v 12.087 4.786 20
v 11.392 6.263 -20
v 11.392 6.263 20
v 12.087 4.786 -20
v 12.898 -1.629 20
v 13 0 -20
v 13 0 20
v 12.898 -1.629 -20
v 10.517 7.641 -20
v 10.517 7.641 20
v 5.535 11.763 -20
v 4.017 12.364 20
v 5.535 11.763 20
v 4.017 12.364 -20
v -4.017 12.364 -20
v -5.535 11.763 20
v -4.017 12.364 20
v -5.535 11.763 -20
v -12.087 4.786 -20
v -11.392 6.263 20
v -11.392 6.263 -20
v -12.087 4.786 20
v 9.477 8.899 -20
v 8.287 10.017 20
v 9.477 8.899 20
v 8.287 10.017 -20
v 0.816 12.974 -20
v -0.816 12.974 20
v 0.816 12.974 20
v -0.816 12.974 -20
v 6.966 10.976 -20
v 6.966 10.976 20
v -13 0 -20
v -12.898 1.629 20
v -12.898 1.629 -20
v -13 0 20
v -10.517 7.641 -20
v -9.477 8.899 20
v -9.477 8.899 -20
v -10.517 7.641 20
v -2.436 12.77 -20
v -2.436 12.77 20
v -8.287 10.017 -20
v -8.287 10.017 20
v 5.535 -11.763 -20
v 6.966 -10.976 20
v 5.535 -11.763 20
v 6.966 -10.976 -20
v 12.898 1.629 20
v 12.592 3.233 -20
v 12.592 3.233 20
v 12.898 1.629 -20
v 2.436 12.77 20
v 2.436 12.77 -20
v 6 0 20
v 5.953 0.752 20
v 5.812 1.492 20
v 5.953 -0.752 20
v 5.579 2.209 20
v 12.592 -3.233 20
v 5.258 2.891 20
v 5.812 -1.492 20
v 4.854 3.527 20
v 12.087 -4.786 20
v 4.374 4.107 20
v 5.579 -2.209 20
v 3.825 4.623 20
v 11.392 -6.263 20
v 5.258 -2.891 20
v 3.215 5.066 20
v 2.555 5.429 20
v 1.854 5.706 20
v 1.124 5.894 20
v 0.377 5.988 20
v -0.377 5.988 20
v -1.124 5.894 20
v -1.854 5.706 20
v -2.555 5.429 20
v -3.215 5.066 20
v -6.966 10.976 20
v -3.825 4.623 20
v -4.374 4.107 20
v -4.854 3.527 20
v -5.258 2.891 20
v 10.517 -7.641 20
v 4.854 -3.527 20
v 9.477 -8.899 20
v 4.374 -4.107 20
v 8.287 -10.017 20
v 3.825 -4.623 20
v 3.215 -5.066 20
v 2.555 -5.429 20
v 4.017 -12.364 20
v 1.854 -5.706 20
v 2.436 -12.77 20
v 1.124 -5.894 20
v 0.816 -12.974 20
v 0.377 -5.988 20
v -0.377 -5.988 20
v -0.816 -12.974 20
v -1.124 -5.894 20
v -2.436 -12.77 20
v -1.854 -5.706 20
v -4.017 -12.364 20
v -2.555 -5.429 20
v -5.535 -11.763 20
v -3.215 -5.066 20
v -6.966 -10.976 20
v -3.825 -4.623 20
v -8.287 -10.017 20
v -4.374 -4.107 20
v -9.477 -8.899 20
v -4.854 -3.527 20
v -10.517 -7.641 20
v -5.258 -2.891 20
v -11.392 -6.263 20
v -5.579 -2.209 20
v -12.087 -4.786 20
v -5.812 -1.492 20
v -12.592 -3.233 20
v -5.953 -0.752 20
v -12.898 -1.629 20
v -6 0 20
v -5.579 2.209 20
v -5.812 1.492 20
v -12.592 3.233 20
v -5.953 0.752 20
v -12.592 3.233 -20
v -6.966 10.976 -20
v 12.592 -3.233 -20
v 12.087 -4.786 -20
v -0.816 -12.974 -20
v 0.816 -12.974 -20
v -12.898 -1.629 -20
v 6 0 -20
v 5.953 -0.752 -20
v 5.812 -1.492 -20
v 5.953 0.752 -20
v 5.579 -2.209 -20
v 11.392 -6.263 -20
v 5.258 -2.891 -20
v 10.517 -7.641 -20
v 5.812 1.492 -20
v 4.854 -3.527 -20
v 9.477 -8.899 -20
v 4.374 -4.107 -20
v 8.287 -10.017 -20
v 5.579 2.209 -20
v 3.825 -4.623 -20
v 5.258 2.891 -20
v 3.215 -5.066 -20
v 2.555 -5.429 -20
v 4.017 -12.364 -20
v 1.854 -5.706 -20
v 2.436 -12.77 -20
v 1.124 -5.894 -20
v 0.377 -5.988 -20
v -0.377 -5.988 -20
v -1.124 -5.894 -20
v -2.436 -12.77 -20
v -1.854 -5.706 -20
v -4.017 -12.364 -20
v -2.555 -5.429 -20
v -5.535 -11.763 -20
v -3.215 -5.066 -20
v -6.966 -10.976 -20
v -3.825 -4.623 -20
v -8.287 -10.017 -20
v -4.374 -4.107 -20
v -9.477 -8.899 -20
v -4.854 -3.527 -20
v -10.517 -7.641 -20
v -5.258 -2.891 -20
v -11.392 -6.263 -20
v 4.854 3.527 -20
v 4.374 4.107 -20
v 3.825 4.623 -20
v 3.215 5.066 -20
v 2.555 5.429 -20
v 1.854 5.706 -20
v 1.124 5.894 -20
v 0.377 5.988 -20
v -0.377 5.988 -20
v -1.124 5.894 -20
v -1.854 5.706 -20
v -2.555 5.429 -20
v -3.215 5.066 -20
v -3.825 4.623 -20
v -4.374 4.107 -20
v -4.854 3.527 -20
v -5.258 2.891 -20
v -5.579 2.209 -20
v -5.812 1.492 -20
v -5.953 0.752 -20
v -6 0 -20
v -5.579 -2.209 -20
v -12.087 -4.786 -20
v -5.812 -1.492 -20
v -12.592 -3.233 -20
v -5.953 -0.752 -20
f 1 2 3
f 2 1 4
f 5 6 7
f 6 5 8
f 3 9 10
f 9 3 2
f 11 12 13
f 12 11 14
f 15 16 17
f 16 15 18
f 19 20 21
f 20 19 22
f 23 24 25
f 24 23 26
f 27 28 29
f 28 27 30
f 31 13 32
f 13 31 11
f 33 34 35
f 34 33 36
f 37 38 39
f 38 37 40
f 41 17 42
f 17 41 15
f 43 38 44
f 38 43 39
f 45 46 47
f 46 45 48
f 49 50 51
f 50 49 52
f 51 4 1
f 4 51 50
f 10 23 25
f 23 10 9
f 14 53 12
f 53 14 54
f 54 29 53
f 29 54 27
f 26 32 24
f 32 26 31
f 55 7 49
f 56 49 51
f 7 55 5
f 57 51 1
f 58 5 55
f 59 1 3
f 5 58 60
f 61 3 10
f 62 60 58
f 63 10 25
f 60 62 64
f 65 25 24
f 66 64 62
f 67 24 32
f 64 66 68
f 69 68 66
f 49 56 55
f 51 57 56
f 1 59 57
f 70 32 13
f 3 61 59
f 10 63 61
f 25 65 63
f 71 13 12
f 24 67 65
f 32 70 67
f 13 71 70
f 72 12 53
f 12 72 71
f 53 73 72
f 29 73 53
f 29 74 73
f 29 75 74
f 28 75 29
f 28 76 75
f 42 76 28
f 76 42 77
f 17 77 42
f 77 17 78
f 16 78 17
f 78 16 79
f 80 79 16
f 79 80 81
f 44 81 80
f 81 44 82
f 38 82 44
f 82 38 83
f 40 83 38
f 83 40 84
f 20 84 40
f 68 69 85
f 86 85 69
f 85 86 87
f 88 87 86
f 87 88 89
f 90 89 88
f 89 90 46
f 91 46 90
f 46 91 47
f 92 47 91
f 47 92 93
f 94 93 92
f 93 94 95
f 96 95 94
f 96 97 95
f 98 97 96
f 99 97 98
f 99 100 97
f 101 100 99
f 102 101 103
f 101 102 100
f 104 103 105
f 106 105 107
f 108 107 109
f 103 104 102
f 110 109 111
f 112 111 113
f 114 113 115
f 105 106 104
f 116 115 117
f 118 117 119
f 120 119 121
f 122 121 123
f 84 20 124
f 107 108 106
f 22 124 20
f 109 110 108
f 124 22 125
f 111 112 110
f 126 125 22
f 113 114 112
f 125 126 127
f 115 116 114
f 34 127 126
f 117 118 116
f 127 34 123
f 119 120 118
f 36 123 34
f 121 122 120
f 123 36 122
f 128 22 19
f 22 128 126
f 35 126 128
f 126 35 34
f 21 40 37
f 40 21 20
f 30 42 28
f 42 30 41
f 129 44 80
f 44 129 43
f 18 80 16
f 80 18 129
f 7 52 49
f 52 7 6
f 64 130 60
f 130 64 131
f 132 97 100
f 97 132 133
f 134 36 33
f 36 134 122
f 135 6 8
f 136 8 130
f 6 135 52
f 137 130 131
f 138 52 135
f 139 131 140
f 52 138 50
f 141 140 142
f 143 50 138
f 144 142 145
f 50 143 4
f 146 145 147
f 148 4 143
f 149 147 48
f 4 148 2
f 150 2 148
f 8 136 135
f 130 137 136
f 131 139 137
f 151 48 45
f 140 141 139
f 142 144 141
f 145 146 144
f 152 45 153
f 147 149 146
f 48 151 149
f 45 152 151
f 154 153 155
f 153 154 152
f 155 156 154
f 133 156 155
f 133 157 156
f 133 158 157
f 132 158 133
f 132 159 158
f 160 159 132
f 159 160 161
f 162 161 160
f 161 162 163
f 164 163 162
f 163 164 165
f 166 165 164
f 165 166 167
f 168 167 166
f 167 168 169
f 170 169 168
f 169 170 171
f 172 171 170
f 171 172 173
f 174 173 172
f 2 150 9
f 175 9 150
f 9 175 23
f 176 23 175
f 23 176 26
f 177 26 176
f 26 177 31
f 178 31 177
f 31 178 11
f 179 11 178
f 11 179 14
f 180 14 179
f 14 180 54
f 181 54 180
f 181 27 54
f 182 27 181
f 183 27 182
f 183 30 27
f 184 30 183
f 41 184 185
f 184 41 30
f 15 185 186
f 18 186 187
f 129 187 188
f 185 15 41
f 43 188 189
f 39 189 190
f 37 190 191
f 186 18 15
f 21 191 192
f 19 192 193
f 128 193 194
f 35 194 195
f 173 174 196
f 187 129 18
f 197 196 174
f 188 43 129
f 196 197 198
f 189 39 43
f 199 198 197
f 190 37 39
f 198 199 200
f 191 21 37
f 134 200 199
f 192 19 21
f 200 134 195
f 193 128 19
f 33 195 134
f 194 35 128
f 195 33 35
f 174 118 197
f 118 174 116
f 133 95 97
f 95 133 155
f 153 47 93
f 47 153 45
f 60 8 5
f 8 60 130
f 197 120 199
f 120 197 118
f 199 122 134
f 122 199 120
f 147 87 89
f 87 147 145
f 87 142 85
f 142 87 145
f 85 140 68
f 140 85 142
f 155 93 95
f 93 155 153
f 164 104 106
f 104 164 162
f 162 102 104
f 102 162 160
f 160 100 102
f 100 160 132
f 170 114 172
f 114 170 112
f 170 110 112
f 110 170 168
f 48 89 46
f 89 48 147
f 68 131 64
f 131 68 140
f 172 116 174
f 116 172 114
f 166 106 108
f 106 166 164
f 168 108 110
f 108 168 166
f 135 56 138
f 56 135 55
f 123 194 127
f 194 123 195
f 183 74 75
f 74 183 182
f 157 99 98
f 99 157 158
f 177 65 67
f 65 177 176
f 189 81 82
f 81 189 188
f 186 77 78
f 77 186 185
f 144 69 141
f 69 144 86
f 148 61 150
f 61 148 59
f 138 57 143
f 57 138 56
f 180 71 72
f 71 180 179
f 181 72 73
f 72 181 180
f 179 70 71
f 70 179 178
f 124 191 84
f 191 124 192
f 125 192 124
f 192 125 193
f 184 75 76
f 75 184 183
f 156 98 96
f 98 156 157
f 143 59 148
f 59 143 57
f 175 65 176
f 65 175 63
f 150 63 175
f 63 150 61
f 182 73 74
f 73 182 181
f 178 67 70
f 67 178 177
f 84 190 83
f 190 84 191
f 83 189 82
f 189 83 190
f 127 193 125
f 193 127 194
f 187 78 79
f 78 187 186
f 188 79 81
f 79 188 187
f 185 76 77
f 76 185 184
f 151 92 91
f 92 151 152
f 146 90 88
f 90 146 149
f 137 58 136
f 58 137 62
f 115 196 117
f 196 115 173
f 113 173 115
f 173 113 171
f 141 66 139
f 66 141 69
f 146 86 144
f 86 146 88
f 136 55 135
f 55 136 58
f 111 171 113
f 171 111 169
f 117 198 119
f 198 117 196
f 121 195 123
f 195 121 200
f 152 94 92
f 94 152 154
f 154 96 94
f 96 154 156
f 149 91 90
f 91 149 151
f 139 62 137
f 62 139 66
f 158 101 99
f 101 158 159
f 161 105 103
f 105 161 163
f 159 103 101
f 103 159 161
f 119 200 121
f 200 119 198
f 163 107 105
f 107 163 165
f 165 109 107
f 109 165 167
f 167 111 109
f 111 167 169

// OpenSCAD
$fn = 50;


difference() {
	union() {
		translate(v = [0, 0, -20.0000000000]) {
			cylinder(h = 40, r = 13.0000000000);
		}
	}
	union() {
		translate(v = [0, 0, -100.0000000000]) {
			cylinder(h = 200, r = 6);
		}
	}
}
